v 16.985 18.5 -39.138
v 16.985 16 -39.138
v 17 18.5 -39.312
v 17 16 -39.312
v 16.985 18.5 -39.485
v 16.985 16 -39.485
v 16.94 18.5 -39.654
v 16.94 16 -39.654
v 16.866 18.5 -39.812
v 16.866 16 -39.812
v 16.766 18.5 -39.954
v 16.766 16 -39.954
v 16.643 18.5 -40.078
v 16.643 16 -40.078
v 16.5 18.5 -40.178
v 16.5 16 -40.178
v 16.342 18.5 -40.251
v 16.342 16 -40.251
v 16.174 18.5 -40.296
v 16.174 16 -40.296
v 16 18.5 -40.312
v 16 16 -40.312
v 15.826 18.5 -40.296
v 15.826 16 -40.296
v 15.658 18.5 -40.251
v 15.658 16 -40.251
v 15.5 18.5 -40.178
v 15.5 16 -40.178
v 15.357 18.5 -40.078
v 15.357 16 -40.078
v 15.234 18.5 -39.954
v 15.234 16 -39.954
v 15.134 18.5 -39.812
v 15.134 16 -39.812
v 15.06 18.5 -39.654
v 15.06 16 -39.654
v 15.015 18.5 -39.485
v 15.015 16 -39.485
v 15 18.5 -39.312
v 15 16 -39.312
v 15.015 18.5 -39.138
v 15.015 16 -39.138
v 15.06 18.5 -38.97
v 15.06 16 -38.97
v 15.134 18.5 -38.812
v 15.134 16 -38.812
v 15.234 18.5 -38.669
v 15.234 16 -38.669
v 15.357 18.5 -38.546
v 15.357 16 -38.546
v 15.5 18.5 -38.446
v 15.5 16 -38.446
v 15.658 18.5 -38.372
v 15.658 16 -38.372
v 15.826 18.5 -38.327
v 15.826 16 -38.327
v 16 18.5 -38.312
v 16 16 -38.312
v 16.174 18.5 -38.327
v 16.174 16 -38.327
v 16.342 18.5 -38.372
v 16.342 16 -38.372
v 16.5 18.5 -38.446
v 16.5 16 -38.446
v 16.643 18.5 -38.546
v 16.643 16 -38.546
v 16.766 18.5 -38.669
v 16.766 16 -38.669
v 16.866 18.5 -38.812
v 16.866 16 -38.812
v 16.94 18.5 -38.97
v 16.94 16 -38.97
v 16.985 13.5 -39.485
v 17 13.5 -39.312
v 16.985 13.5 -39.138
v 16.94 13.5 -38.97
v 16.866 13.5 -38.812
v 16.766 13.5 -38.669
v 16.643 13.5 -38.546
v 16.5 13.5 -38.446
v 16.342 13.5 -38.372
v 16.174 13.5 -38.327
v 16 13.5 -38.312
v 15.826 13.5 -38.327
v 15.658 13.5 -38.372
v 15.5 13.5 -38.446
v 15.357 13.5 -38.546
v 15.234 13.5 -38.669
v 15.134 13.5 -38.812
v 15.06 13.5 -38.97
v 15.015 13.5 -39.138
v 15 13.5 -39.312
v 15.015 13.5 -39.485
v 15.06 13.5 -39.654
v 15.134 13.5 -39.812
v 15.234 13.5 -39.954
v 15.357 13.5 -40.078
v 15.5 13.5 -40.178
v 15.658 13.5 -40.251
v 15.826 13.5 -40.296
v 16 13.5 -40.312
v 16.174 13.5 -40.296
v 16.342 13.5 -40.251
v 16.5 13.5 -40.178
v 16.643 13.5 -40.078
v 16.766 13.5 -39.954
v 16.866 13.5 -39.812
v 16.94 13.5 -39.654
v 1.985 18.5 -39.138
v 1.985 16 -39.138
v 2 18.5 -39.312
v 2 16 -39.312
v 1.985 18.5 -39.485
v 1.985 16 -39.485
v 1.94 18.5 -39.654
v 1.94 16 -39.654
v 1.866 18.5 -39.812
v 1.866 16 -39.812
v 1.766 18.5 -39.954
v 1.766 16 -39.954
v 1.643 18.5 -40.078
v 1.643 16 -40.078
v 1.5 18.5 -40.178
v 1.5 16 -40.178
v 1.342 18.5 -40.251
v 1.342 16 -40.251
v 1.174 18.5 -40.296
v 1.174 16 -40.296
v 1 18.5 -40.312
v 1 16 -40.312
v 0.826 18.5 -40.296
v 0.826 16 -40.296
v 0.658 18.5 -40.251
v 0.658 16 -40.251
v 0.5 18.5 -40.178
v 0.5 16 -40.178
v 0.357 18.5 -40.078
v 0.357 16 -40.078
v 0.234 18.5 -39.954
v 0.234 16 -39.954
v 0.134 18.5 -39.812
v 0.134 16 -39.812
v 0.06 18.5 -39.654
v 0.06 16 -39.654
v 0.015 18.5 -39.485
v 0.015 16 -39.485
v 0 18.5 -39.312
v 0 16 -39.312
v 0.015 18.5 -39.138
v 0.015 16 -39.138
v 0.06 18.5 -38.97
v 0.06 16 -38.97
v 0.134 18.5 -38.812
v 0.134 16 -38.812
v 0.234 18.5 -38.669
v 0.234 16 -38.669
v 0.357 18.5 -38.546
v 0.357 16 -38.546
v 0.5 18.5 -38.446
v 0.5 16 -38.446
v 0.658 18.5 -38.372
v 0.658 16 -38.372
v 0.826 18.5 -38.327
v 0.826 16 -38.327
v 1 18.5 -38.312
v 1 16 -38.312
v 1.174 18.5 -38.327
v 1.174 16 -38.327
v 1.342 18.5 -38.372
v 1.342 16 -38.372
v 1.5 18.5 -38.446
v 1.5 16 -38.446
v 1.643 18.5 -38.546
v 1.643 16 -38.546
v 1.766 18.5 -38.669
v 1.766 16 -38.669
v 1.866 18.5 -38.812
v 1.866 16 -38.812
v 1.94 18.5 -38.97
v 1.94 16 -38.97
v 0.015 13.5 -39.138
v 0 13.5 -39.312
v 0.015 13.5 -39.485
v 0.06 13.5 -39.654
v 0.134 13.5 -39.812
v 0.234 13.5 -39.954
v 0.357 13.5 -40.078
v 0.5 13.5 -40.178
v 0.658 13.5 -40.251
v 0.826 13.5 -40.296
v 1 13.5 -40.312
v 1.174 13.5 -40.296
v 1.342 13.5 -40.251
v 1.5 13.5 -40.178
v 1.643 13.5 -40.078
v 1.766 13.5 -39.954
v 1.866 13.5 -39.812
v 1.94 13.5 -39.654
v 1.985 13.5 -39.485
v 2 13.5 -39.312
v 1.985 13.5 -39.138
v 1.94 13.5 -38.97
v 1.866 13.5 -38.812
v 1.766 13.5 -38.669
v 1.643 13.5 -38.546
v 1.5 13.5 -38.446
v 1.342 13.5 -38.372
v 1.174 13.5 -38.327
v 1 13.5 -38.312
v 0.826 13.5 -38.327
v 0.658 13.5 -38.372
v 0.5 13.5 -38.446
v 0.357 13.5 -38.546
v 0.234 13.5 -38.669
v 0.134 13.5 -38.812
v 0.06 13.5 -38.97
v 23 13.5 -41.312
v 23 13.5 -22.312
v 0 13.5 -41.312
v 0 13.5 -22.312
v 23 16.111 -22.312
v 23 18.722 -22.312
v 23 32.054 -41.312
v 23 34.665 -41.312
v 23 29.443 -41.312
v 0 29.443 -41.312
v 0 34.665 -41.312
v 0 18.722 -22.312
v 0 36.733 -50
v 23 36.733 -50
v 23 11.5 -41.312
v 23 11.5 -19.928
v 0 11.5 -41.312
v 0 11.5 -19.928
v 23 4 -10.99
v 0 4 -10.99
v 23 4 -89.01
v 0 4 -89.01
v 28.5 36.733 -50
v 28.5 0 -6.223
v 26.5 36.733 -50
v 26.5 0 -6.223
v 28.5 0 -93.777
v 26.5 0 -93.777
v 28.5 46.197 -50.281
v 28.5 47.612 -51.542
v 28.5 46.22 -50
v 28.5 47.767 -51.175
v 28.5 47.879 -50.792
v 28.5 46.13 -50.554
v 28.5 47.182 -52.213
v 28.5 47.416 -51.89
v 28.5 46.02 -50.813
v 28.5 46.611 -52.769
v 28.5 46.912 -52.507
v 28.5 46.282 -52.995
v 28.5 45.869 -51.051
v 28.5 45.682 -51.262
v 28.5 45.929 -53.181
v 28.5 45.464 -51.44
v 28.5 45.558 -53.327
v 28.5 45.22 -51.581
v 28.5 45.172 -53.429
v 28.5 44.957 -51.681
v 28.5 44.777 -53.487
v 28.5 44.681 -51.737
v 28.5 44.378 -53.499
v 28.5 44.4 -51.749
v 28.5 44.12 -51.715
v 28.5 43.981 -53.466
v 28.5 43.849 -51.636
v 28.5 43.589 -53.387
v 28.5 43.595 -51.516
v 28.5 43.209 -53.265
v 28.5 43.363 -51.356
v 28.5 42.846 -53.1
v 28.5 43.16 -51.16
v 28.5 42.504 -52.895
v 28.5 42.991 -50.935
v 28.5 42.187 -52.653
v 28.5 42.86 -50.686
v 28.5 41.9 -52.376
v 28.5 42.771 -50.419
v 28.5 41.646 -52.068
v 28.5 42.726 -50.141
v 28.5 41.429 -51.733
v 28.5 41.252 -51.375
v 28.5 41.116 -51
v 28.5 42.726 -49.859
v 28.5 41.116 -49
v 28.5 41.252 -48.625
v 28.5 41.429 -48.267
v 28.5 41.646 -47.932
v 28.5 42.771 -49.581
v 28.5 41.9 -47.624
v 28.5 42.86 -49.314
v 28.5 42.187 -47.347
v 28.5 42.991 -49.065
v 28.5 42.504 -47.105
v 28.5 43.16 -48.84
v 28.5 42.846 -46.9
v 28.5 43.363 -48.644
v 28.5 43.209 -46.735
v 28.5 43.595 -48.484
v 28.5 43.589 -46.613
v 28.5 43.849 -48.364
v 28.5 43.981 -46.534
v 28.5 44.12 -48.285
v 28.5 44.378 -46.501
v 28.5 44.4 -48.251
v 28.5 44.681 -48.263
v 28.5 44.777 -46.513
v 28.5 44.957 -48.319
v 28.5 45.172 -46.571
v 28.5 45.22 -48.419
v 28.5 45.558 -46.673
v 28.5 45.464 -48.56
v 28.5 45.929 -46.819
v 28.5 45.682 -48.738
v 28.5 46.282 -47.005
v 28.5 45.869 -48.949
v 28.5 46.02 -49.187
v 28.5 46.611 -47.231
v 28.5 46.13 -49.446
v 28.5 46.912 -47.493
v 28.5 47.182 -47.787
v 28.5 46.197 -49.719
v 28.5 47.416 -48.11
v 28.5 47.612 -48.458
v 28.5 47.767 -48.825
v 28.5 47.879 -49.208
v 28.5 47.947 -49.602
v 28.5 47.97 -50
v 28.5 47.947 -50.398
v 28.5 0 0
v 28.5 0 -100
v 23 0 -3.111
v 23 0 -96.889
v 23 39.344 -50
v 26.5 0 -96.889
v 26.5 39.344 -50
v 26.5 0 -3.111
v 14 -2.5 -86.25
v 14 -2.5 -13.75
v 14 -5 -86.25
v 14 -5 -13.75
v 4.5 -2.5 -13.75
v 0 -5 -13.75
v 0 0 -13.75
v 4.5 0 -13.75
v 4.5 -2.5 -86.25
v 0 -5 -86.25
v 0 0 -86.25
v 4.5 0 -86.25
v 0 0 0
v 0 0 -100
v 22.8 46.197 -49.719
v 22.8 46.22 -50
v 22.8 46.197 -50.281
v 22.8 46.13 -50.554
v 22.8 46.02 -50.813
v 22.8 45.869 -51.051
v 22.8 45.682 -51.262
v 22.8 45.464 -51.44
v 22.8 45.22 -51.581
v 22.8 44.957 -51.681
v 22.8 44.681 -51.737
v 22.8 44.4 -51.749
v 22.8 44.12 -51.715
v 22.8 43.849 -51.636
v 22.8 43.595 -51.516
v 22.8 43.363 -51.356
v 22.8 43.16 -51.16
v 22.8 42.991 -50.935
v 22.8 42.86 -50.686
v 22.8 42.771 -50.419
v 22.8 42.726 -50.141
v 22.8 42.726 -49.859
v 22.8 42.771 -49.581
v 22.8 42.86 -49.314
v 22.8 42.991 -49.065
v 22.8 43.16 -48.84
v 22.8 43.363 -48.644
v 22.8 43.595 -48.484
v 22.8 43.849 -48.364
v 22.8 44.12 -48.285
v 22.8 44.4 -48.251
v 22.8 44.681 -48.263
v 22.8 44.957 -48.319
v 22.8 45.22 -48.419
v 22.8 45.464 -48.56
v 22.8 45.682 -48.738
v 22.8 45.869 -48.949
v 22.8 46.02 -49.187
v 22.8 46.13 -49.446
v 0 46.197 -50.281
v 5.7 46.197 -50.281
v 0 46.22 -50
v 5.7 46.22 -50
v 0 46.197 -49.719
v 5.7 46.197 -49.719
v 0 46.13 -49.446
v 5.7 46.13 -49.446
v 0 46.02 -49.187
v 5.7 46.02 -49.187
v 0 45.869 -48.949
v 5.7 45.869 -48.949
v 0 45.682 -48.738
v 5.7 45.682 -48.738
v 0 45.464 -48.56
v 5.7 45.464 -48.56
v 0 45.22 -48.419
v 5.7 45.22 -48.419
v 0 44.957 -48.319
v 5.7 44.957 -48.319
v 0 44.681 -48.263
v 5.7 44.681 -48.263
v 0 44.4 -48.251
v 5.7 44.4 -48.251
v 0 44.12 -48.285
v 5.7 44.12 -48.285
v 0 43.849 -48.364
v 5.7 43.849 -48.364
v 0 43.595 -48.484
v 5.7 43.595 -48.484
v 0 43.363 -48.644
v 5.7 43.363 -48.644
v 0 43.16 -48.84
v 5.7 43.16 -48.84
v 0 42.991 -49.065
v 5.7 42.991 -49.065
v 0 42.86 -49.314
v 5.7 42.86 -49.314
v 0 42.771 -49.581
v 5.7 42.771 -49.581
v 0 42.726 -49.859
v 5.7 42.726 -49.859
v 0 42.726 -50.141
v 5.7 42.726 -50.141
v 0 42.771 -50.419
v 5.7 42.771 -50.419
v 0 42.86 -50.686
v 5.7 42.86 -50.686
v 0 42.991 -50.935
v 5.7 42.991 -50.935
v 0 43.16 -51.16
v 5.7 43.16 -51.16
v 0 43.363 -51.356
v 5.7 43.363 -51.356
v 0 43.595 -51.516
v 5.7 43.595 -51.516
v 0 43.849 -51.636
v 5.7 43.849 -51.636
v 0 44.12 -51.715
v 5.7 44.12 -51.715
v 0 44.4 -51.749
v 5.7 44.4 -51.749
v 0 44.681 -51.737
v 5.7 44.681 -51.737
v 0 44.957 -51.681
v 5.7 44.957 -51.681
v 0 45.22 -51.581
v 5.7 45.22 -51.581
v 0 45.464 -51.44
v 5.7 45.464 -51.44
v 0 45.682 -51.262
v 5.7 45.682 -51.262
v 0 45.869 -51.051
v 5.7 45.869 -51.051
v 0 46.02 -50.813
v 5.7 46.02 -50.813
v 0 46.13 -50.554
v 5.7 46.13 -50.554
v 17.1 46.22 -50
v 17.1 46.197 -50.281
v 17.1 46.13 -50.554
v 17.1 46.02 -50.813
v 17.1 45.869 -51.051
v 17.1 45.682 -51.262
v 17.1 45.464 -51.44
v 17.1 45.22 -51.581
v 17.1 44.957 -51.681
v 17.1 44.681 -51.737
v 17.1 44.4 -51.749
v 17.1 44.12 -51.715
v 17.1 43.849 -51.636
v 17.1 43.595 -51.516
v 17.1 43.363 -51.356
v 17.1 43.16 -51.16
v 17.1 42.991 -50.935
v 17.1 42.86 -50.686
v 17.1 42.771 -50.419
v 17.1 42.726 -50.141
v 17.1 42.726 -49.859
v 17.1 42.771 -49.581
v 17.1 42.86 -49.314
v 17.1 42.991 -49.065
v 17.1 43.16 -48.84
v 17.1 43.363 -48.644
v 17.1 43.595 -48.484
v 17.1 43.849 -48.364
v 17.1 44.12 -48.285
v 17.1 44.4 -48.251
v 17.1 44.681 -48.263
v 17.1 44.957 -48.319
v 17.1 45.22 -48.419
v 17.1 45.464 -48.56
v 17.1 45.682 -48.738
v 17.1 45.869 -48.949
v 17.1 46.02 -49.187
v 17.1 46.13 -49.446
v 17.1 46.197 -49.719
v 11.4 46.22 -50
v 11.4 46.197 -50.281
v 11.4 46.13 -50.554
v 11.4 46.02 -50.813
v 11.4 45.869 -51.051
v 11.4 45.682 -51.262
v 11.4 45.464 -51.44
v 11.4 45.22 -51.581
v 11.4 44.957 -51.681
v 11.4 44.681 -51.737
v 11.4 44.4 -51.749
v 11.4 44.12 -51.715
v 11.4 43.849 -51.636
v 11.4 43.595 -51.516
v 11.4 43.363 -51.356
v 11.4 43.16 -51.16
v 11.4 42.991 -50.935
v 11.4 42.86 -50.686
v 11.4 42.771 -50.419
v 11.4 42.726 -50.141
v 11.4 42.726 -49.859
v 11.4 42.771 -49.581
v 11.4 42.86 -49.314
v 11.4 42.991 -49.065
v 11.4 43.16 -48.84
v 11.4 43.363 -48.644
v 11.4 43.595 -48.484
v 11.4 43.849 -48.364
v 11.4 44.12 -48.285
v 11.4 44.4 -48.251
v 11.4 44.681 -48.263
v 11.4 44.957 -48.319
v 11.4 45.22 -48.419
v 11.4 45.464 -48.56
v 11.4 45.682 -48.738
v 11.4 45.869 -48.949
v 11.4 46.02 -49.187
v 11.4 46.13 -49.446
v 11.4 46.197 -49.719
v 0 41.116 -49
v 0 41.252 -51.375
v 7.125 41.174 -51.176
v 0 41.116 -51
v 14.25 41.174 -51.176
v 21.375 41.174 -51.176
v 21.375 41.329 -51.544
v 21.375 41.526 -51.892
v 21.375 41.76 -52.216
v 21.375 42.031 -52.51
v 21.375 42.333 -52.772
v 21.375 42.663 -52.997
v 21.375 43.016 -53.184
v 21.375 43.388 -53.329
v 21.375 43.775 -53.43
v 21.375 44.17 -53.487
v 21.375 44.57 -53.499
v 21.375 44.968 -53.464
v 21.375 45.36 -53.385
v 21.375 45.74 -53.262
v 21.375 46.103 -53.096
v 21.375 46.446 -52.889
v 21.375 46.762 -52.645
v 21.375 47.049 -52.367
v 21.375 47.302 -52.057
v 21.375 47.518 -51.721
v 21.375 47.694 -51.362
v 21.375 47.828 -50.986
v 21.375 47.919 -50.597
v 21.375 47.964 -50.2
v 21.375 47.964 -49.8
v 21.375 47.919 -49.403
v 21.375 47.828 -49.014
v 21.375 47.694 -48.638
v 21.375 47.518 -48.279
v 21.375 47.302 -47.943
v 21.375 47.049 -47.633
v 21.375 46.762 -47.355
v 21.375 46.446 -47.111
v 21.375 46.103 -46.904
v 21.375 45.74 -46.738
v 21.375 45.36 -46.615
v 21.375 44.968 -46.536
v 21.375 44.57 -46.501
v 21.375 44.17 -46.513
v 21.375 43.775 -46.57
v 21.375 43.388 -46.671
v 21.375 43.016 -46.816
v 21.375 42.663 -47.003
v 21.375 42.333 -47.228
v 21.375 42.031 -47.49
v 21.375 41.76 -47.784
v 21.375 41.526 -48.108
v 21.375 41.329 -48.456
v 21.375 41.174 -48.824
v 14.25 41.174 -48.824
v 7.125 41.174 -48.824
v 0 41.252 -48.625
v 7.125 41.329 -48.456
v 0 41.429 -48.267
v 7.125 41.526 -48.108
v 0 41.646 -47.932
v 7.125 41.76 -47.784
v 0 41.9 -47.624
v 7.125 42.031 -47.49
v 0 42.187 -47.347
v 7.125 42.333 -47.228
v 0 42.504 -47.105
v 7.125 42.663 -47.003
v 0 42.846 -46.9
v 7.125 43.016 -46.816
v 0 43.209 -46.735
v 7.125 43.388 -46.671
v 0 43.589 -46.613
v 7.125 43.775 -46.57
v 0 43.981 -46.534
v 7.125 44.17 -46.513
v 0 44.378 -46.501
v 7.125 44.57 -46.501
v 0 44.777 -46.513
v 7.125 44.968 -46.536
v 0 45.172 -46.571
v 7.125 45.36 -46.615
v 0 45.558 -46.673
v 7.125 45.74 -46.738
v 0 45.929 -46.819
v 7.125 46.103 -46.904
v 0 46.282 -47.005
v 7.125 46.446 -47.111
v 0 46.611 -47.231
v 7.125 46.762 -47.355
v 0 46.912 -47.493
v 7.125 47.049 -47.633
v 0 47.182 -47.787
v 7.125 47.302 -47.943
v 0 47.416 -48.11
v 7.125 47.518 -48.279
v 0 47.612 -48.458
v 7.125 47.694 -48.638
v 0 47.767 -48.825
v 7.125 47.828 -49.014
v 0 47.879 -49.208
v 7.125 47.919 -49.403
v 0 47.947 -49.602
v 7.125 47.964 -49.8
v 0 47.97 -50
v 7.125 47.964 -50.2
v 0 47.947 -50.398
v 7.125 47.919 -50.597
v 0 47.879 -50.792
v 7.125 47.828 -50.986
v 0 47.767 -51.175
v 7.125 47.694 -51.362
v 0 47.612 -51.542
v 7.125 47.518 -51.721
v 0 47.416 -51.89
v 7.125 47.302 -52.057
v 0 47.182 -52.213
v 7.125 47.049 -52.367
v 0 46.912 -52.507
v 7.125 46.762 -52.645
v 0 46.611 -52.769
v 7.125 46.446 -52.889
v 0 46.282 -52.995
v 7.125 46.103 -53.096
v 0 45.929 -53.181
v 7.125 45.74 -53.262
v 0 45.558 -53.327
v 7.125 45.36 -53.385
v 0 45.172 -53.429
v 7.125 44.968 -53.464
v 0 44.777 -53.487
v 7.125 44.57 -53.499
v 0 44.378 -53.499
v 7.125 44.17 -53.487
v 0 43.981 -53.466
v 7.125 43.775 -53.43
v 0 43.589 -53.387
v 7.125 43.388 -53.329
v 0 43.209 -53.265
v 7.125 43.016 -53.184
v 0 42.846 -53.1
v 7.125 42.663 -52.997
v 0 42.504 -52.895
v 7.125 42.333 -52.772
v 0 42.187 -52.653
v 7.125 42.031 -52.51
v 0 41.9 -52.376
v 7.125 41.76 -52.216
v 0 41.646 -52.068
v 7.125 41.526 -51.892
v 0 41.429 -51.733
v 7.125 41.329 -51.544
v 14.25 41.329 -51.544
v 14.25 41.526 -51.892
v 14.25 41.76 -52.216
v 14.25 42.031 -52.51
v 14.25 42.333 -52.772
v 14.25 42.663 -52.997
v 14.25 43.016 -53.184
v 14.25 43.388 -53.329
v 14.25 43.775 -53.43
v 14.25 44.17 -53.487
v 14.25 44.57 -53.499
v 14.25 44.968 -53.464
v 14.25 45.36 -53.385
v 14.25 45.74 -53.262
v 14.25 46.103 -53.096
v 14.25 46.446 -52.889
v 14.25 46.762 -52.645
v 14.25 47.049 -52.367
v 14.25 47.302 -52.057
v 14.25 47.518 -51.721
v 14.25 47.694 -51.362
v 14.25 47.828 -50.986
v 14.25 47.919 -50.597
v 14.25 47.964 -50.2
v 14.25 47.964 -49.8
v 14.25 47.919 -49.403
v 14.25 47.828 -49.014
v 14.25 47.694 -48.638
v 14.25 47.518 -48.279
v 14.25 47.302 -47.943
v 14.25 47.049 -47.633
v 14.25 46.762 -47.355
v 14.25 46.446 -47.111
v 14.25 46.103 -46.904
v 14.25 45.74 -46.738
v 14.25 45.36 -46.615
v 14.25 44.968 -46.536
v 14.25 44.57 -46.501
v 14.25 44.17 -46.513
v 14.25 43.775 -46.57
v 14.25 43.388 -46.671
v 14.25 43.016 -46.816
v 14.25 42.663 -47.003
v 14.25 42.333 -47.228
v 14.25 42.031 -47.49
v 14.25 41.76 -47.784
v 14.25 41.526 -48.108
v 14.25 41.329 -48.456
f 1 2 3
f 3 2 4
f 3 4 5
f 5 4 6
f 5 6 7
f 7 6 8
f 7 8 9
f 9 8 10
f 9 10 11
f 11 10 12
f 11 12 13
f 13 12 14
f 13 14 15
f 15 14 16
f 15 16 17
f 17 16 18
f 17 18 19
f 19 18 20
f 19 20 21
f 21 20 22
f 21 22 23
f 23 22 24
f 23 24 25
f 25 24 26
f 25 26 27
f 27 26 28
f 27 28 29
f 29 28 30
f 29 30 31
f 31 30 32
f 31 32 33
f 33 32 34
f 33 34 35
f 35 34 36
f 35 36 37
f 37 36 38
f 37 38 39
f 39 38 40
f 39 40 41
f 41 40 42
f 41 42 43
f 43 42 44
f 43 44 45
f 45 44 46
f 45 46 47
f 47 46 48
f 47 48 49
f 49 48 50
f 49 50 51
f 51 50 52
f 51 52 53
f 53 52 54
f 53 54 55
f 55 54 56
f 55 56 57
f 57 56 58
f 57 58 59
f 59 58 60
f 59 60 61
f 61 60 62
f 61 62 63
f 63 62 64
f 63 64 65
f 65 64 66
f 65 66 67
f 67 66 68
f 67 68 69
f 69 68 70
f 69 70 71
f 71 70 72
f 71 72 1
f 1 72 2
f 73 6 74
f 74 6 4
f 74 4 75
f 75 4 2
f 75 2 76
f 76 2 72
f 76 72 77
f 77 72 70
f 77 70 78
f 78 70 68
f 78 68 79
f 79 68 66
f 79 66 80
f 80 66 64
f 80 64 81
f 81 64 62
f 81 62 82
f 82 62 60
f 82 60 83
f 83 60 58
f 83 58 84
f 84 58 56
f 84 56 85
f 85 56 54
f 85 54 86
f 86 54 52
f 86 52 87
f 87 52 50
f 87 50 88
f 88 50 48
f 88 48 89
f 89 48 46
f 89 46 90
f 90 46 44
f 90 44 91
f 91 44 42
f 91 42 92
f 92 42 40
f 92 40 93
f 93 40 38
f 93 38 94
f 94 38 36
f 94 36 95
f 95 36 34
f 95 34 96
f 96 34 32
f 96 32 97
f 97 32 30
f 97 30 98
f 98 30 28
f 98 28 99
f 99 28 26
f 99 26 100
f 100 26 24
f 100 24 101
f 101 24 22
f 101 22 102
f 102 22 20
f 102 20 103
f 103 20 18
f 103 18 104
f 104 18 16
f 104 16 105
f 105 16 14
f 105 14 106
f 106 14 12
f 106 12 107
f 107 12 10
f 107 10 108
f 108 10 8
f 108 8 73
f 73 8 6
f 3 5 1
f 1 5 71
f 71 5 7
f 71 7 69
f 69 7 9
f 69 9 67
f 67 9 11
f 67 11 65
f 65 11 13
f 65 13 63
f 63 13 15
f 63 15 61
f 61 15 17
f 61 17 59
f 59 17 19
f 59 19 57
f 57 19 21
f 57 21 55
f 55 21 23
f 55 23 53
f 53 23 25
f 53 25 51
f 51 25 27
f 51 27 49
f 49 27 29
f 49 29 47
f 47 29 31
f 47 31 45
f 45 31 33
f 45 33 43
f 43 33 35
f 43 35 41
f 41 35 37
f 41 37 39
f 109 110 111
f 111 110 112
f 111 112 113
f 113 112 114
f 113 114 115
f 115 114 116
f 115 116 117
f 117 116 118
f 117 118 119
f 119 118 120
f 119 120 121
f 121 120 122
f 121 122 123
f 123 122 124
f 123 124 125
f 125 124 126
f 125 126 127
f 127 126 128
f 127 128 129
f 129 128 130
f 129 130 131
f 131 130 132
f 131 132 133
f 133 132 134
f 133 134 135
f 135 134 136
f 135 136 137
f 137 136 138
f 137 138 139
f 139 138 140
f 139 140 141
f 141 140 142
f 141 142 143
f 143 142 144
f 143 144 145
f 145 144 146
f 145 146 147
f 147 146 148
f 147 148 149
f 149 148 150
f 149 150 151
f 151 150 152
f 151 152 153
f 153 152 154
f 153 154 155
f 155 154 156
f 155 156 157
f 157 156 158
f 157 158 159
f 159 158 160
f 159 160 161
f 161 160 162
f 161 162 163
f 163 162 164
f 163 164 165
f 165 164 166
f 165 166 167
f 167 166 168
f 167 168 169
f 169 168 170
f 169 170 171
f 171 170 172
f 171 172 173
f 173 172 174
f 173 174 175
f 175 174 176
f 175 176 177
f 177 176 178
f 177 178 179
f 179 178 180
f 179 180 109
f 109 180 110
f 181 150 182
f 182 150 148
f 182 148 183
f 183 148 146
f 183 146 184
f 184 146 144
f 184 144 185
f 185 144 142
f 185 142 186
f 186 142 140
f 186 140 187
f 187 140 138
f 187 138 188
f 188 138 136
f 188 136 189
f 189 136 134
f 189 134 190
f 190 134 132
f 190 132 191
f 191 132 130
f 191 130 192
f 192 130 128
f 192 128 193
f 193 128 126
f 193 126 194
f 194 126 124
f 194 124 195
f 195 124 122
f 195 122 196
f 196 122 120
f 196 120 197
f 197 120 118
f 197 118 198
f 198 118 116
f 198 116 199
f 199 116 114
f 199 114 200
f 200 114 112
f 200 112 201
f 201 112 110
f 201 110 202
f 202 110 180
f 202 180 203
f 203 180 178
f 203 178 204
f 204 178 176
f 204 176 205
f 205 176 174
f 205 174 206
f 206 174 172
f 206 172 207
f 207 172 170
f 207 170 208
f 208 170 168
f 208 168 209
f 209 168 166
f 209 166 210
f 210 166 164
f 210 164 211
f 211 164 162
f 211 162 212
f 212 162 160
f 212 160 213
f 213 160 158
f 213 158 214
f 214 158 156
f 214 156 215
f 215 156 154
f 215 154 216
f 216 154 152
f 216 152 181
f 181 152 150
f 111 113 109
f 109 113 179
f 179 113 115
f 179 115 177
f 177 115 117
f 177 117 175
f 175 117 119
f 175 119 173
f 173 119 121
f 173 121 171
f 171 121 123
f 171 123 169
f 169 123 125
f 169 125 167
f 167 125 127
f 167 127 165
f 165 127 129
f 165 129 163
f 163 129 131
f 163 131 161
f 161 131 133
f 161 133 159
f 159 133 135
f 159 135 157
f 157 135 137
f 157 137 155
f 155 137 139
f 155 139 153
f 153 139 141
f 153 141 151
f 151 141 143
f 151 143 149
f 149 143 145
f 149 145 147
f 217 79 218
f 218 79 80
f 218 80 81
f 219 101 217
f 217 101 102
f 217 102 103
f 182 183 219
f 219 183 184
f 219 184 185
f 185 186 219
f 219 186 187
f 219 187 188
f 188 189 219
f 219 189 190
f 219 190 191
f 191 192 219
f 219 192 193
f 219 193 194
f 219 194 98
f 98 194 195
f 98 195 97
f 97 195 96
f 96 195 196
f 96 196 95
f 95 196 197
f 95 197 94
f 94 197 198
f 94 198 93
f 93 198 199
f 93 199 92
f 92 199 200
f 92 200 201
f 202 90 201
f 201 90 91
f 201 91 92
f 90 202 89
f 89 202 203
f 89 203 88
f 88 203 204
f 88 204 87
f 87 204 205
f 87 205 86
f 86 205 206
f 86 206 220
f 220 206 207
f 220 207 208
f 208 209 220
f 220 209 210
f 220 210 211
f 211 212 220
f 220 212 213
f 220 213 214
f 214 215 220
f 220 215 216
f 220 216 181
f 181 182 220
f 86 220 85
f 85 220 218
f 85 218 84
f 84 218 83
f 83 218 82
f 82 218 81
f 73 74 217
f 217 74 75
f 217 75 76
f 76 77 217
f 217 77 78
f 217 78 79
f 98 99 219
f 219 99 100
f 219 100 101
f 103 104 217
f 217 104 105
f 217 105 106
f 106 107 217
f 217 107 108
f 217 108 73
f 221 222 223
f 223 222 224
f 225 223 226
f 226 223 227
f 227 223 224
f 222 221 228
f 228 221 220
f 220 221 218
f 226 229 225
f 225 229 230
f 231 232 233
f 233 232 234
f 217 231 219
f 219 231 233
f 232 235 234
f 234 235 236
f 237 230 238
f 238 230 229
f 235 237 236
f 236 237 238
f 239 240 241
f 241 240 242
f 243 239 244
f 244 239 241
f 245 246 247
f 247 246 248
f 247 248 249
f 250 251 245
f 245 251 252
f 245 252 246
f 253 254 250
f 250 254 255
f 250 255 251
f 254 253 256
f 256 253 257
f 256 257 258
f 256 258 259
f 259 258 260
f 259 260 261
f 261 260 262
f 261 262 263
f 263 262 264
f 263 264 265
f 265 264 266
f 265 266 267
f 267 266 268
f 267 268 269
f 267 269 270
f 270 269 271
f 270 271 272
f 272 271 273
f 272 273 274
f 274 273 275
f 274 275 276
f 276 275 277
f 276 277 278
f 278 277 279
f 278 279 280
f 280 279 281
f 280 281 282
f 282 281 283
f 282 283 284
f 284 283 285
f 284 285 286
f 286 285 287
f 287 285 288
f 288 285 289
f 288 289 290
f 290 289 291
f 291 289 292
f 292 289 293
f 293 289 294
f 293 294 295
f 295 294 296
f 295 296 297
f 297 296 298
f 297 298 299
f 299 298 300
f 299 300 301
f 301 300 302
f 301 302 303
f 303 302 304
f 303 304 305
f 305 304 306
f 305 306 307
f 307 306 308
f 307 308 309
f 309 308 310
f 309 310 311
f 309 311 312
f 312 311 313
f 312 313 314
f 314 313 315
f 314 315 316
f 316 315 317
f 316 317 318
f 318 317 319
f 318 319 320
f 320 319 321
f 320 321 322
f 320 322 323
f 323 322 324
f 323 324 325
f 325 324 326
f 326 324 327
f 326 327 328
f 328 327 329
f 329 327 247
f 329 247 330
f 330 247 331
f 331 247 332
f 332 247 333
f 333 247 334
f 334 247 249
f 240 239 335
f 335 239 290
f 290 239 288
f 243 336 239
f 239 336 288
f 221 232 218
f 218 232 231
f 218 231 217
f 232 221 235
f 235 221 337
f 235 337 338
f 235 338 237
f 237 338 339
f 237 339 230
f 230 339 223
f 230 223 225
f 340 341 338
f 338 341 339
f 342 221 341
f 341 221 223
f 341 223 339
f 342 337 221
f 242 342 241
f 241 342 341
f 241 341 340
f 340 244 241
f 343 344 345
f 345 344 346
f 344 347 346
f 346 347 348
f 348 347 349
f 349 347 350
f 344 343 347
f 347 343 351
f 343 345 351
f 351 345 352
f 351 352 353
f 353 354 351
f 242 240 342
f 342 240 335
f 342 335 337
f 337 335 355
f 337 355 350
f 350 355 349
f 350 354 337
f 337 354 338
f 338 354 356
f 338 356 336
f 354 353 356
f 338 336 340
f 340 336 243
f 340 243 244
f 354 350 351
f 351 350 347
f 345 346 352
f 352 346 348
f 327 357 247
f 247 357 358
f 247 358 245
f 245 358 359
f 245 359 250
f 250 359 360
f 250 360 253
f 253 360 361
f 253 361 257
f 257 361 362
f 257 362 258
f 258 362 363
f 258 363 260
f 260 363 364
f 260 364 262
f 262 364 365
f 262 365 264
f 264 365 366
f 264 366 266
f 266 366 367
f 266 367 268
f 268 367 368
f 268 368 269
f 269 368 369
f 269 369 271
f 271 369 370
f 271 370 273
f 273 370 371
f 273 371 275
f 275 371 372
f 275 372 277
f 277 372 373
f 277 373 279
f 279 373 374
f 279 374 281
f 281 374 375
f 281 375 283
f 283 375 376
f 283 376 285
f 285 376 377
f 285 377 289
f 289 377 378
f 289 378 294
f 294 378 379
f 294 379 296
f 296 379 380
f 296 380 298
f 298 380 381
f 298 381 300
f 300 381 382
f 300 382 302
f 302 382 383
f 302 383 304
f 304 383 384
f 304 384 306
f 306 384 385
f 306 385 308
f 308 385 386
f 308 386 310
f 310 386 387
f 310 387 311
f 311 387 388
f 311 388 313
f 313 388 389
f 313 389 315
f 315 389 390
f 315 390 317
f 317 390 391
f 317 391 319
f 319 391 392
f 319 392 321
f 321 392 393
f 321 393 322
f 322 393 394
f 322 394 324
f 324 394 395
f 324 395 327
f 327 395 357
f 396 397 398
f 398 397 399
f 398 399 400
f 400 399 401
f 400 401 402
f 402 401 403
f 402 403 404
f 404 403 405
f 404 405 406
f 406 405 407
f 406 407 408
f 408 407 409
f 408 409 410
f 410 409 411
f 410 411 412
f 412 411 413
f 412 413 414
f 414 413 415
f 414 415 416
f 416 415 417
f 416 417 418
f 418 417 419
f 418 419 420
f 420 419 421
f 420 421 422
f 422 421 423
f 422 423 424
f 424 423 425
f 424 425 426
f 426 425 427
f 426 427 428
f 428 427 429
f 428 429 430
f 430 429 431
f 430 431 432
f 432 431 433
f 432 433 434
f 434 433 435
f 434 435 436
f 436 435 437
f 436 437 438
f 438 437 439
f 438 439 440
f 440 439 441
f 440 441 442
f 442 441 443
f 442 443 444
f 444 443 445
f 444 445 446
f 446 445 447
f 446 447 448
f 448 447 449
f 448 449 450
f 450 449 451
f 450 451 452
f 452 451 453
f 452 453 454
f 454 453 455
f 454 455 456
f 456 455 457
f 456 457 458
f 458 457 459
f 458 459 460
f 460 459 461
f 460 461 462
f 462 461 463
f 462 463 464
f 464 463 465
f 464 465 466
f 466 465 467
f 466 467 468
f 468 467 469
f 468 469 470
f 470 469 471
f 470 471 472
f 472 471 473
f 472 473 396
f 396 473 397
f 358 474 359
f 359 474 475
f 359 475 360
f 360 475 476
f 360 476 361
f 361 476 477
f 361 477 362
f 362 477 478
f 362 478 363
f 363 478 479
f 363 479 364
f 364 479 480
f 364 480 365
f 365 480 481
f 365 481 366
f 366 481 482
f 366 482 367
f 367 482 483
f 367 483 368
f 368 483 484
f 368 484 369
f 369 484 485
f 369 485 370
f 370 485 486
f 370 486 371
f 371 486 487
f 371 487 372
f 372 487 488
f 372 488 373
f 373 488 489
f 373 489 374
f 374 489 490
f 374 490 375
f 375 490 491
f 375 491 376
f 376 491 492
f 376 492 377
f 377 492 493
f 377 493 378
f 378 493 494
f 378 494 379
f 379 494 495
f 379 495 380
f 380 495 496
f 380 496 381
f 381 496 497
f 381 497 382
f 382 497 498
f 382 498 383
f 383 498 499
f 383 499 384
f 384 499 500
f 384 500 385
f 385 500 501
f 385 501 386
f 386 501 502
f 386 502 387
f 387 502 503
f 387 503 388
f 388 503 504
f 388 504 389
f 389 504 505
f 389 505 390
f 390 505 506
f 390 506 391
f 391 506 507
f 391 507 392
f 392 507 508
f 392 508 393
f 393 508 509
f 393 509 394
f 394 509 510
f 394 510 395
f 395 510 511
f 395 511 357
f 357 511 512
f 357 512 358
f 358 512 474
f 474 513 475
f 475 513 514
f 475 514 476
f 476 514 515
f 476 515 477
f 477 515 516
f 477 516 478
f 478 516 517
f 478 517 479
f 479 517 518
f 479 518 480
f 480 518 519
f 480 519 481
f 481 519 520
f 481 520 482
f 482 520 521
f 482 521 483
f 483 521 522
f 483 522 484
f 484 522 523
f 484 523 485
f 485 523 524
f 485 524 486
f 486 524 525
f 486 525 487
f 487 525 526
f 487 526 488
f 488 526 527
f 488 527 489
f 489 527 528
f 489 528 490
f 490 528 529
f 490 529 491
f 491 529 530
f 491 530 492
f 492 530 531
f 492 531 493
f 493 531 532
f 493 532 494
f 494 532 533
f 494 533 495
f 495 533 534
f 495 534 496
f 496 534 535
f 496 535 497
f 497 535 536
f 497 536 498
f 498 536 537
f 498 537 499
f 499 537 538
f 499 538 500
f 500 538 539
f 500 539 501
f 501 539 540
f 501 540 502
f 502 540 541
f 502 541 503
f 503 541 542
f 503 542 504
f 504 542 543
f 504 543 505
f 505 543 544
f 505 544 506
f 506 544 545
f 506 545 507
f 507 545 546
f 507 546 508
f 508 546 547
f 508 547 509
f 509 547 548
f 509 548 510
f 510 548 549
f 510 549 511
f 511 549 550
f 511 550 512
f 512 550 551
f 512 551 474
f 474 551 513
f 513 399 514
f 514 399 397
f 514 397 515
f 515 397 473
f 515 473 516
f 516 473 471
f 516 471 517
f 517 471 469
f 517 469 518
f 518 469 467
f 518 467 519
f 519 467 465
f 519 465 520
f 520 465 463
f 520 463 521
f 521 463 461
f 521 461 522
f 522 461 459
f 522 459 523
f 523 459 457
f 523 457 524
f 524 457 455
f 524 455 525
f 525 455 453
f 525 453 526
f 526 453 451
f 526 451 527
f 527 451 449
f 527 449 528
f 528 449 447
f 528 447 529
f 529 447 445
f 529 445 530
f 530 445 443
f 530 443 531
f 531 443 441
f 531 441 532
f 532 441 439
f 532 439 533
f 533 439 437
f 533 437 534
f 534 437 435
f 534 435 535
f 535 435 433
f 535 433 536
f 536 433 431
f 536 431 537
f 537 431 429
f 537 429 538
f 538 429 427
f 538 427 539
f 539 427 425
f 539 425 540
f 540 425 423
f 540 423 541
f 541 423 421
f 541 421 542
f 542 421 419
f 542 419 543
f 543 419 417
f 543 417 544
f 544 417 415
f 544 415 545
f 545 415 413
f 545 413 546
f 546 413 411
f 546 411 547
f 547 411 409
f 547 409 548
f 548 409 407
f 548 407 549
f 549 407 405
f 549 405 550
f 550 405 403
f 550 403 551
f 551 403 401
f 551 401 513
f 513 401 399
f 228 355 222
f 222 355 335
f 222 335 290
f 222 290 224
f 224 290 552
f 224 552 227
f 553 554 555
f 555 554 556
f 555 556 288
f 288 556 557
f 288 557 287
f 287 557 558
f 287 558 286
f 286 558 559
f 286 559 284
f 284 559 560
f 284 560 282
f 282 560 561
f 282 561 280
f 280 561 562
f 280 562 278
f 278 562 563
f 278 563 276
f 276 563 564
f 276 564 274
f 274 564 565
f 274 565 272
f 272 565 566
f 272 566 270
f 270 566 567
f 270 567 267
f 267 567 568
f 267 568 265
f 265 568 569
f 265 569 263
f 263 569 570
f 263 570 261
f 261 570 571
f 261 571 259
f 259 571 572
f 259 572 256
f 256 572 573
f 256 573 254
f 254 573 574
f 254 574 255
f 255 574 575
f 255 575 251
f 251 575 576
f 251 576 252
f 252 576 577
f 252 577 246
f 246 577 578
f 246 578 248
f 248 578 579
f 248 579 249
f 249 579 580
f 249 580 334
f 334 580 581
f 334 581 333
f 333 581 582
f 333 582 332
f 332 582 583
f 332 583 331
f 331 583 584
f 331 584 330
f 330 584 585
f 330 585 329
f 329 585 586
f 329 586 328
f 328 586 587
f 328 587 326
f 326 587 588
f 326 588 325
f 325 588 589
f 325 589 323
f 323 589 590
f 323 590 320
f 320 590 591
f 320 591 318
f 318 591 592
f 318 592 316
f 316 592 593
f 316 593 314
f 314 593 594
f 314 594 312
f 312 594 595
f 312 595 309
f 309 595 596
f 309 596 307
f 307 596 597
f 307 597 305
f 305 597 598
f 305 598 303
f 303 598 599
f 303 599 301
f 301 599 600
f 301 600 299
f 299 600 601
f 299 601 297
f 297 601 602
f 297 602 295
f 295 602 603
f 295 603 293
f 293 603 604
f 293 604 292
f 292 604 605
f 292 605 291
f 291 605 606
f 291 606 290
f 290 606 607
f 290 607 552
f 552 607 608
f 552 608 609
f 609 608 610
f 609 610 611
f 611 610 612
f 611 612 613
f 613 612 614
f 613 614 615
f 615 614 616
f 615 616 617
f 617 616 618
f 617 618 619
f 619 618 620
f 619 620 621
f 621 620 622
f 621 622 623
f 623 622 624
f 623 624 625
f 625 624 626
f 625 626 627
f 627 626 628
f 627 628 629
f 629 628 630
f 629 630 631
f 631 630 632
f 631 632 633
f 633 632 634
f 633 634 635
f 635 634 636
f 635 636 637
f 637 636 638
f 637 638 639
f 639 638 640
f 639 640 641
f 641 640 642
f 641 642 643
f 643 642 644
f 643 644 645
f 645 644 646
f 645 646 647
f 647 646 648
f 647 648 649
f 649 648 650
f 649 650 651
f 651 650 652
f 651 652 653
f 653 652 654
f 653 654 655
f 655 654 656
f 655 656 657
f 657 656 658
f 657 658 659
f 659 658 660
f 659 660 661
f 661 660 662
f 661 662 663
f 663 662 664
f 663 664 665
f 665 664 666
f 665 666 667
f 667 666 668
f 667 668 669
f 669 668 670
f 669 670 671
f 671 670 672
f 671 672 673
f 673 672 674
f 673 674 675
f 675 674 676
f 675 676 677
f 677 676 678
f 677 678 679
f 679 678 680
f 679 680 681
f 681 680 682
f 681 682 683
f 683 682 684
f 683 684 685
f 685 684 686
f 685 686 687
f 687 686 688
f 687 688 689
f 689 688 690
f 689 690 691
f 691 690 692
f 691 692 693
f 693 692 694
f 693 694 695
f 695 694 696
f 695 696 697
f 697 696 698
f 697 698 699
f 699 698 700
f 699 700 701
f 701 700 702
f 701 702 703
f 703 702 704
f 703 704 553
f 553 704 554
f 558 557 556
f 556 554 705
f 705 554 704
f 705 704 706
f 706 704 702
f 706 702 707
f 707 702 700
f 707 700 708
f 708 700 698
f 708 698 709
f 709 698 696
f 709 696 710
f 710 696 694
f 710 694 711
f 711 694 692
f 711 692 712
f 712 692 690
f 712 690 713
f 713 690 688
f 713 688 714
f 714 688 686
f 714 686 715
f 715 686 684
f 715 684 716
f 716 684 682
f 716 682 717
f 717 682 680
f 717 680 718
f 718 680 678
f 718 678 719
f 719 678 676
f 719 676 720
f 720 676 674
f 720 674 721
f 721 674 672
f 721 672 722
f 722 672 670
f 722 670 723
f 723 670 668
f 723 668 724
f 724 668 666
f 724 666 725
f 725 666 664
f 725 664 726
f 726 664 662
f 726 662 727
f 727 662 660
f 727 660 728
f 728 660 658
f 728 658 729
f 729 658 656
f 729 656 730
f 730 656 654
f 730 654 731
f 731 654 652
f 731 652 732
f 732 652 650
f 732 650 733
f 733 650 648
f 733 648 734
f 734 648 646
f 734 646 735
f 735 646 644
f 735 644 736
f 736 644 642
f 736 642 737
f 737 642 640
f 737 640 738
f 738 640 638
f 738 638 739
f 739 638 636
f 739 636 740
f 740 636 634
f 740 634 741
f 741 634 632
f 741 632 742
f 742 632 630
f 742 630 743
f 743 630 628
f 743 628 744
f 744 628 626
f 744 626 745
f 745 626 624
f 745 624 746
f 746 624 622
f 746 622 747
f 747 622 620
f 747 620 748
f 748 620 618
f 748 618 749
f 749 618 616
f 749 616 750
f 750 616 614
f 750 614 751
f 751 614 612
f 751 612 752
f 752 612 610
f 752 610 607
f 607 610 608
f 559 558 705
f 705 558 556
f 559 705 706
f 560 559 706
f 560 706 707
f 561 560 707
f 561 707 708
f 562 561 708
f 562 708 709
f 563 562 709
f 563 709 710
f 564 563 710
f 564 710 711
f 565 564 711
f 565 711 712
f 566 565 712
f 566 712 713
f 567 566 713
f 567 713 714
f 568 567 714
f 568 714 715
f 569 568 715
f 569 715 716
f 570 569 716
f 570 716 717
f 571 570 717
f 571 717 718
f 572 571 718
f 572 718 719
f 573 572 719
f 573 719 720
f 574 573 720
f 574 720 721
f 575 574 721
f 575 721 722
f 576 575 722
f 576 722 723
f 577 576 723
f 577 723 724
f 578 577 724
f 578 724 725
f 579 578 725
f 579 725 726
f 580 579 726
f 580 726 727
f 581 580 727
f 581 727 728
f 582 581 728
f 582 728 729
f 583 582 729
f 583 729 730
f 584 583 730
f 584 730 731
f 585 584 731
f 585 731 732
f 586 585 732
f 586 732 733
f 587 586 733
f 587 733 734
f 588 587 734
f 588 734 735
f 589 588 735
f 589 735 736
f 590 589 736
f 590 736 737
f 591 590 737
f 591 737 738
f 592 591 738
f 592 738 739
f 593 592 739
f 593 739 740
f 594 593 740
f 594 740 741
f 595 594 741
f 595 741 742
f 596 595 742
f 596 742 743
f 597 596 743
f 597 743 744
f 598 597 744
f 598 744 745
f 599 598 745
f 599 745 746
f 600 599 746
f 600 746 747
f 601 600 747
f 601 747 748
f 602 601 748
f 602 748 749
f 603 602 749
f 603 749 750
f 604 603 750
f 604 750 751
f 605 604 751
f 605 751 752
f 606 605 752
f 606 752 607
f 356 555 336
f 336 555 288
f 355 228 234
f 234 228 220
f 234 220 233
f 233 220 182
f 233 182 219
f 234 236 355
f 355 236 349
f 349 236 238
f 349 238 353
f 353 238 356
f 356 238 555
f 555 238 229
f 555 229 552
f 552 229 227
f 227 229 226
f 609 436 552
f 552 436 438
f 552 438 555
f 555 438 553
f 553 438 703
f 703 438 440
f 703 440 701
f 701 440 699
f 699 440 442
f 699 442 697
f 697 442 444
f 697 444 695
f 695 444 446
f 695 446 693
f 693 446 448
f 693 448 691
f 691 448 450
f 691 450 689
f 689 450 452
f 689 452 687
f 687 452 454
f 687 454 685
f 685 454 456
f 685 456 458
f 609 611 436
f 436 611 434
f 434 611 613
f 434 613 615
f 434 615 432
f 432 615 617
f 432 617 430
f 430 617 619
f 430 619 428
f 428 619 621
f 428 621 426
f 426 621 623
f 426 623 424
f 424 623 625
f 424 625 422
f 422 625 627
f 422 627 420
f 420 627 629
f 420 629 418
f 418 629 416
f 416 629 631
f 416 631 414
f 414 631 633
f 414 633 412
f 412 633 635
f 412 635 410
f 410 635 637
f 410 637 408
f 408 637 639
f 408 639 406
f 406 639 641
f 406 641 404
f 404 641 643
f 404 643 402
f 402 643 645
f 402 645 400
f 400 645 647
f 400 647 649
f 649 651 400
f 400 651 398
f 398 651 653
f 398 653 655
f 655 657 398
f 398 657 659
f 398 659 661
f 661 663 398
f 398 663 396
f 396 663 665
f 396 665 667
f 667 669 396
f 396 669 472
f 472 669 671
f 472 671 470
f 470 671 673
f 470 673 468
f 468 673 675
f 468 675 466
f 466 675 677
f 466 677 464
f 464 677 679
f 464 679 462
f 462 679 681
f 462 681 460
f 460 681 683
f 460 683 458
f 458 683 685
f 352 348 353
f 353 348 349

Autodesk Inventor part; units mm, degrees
ref_plane "YZ Plane" through (0, 0, 0) normal (1, 0, 0) x (0, 1, 0)
ref_plane "XZ Plane" through (0, 0, 0) normal (0, 1, 0) x (-1, 0, 0)
sketch "Skizze1" plane through (0, 0, 0) normal (1, 0, 0) x (0, 1, 0)
  line L0 (0, 0) -> (0, -100)
  line L1 (0, -100) -> (41.1159, -51)
  line L2 (0, 0) -> (41.1159, -49)
  circle A0 centre (44.47, -50) radius 3.5
  circle A1 centre (44.47, -50) radius 1.75
  dimension "d0" = 40
  dimension "d1" = 3.5
  dimension "d2" = 7
  dimension "d3" = 2
  dimension "d4" = 100
extrude "Extrusion1" add sketch "Skizze1" along normal blind 28.5
sketch "Skizze2" plane through (0, 0, -100) normal (0, -1, 0) x (1, 0, 0)
  line L0 (0, 100) -> (0, 0) projected
  line L1 (0, 0) -> (28.5, 0) projected
  line L2 (28.5, 100) -> (28.5, 0) projected
  line L3 (0, 100) -> (28.5, 100) projected
extrude "Extrusion2" add sketch "Skizze2" along normal blind 5
sketch "Skizze3" plane through (28.5, 0, 0) normal (1, 0, 0) x (0, 0, -1)
  line L0 (100, 0) -> (51, 41.1159) projected
  arc A0 (51, 41.1159) -> (49, 41.1159) centre (50, 44.47) ccw projected
  line L1 (49, 41.1159) -> (0, 0) projected
  line L2 (0, 0) -> (0, -5) projected
  line L3 (100, -5) -> (0, -5) projected
  line L4 (100, 0) -> (100, -5) projected
  circle A1 centre (50, 44.47) radius 1.75 projected
  line L5 (49, 41.1159) -> (0, 0) projected
  line L6 (0, 0) -> (100, 0)
  line L7 (0, 0) -> (0, -5) projected
  line L8 (0, -2.5) -> (100, -2.5)
extrude "Extrusion3" cut sketch "Skizze3" against normal blind 24 contours L4 L8 L2 L6
sketch "Skizze4" plane through (28.5, 0, 0) normal (1, 0, 0) x (0, 0, -1)
  line L0 (0, 0) -> (100, 0) projected
  line L1 (100, -5) -> (0, -5) projected
  line L2 (0, 0) -> (13.75, 0)
  line L3 (13.75, 0) -> (13.75, -5)
  line L4 (13.75, -5) -> (0, -5)
  line L5 (0, -5) -> (0, 0)
  line L6 (100, 0) -> (51, 41.1159) projected
  line L7 (100, 0) -> (86.25, 0)
  line L8 (86.25, 0) -> (86.25, -5)
  line L9 (86.25, -5) -> (100, -5)
  line L10 (100, -5) -> (100, 0)
  dimension "d11" = 72.5
extrude "Extrusion4" cut sketch "Skizze4" against normal through all contours L0 L3 L1 L5 | L0 L10 L1 L8
sketch "Skizze5" plane through (28.5, 0, 0) normal (1, 0, 0) x (0, 0, -1)
  line L0 (86.25, -5) -> (86.25, -2.5) projected
  line L1 (86.25, -2.5) -> (13.75, -2.5) projected
  line L2 (13.75, -2.5) -> (13.75, -5) projected
  line L3 (86.25, -5) -> (13.75, -5) projected
  point P0 (0, 0)
extrude "Extrusion5" cut sketch "Skizze5" against normal blind 14.5
ref_plane "Arbeitsebene1" through (26.5, 0, 0) normal (1, 0, 0) x (0, 0, -1)
sketch "Skizze6" plane through (26.5, 0, 0) normal (1, 0, 0) x (0, 0, -1)
  line L0 (49, 41.1159) -> (0, 0) projected
  line L1 (100, 0) -> (51, 41.1159) projected
  line L2 (13.75, 0) -> (0, 0) projected
  line L3 (13.75, 0) -> (86.25, 0) projected
  line L4 (100, 0) -> (86.25, 0) projected
  line L5 (3.1114, 0) -> (50, 39.3442)
  line L6 (50, 39.3442) -> (96.8886, 0)
  circle A0 centre (50, 44.47) radius 1.75 projected
  dimension "d17" = 2
extrude "Extrusion6" cut sketch "Skizze6" against normal blind 3.5 contours L2 L5 L6 L4 L3
sketch "Skizze7" plane through (23, 0, 0) normal (1, 0, 0) x (0, 0, -1)
  line L0 (96.8886, 0) -> (3.1114, 0) projected
  line L1 (50, 39.3442) -> (96.8886, 0) projected
  line L2 (3.1114, 0) -> (50, 39.3442) projected
  line L3 (96.8886, 0) -> (3.1114, 0) projected
  line L4 (6.2229, 0) -> (50, 36.7334)
  line L5 (50, 36.7334) -> (93.7771, 0)
  line L6 (100, 0) -> (86.25, 0) projected
  point P0 (0, 0)
  dimension "d20" = 2
extrude "Extrusion7" cut sketch "Skizze7" along normal through all contours L0 L4 L5
sketch "Skizze8" plane through (0, 0, 0) normal (-1, 0, 0) x (0, 0, 1)
  line L0 (-100, 0) -> (-86.25, 0) projected
  line L1 (-13.75, 0) -> (0, 0) projected
  line L2 (-13.75, 0) -> (-86.25, 0) projected
  line L3 (-49, 41.1159) -> (0, 0) projected
  line L4 (-100, 0) -> (-51, 41.1159) projected
  circle A0 centre (-50, 44.47) radius 1.75 projected
  line L5 (-93.7771, 0) -> (-96.8886, 0) projected
  line L6 (-50, 39.3442) -> (-96.8886, 0) projected
  line L7 (-92.1215, 4) -> (-7.8785, 4)
  line L8 (-3.1114, 0) -> (-50, 39.3442) projected
  line L9 (-93.7771, 0) -> (-50, 36.7334) projected
  line L10 (-50, 36.7334) -> (-6.2229, 0) projected
  point P0 (-10.9899, 4)
  point P1 (-89.0101, 4)
  dimension "d23" = 4
extrude "Extrusion8" cut sketch "Skizze8" against normal up to surface (23 mm away) contours L9 L10 L7
sketch "Skizze9" plane through (0, 0, 0) normal (-1, 0, 0) x (0, 0, 1)
  line L0 (-89.0101, 4) -> (-50, 36.7334) projected
  line L1 (-50, 36.7334) -> (-10.9899, 4) projected
  line L2 (-10.9899, 4) -> (-89.0101, 4) projected
  line L3 (-86.25, 0) -> (-86.25, -5) projected
  line L4 (-13.75, -5) -> (-86.25, -5) projected
  line L5 (-13.75, -5) -> (-13.75, 0) projected
  line L6 (-13.75, 0) -> (0, 0) projected
  line L7 (-49, 41.1159) -> (0, 0) projected
  arc A0 (-49, 41.1159) -> (-51, 41.1159) centre (-50, 44.47) ccw projected
  line L8 (-100, 0) -> (-51, 41.1159) projected
  line L9 (-100, 0) -> (-86.25, 0) projected
  circle A1 centre (-50, 44.47) radius 1.75 projected
  line L10 (-19.9281, 11.5) -> (-41.3116, 11.5)
  line L11 (-41.3116, 11.5) -> (-41.3116, 13.5)
  line L12 (-41.3116, 13.5) -> (-22.3116, 13.5)
  line L13 (-50, 36.7334) -> (-10.9899, 4) projected
  point P0 (-30.495, 20.3667)
  dimension "d26" = 2
  dimension "d27" = 19
  dimension "d38" = 7.5
extrude "Extrusion9" add sketch "Skizze9" against normal up to surface (23 mm away) contours L1 L10 L11 L12
sketch "Skizze10" plane through (0, 13.5, -22.3116) normal (0, 1, 0) x (1, 0, 0)
  line L0 (23, 19) -> (23, 0) projected
  line L1 (0, 19) -> (23, 19) projected
  line L2 (0, 0) -> (0, 19) projected
  line L3 (23, 0) -> (0, 0) projected
  circle A0 centre (16, 17) radius 1
  circle A1 centre (1, 17) radius 1
  point P0 (0, -22.3116)
  dimension "d30" = 2
  dimension "d31" = 15
  dimension "d32" = 2
  dimension "d39" = 1
extrude "Extrusion10" cut sketch "Skizze10" along normal through all contours A1 | L0 L3 L2 L1 | A0
extrude "Extrusion11" add sketch "Skizze10" along normal blind 5 contours A1 | A0
equation "\"d32\" = d30"
properties part number "roof_foot"
